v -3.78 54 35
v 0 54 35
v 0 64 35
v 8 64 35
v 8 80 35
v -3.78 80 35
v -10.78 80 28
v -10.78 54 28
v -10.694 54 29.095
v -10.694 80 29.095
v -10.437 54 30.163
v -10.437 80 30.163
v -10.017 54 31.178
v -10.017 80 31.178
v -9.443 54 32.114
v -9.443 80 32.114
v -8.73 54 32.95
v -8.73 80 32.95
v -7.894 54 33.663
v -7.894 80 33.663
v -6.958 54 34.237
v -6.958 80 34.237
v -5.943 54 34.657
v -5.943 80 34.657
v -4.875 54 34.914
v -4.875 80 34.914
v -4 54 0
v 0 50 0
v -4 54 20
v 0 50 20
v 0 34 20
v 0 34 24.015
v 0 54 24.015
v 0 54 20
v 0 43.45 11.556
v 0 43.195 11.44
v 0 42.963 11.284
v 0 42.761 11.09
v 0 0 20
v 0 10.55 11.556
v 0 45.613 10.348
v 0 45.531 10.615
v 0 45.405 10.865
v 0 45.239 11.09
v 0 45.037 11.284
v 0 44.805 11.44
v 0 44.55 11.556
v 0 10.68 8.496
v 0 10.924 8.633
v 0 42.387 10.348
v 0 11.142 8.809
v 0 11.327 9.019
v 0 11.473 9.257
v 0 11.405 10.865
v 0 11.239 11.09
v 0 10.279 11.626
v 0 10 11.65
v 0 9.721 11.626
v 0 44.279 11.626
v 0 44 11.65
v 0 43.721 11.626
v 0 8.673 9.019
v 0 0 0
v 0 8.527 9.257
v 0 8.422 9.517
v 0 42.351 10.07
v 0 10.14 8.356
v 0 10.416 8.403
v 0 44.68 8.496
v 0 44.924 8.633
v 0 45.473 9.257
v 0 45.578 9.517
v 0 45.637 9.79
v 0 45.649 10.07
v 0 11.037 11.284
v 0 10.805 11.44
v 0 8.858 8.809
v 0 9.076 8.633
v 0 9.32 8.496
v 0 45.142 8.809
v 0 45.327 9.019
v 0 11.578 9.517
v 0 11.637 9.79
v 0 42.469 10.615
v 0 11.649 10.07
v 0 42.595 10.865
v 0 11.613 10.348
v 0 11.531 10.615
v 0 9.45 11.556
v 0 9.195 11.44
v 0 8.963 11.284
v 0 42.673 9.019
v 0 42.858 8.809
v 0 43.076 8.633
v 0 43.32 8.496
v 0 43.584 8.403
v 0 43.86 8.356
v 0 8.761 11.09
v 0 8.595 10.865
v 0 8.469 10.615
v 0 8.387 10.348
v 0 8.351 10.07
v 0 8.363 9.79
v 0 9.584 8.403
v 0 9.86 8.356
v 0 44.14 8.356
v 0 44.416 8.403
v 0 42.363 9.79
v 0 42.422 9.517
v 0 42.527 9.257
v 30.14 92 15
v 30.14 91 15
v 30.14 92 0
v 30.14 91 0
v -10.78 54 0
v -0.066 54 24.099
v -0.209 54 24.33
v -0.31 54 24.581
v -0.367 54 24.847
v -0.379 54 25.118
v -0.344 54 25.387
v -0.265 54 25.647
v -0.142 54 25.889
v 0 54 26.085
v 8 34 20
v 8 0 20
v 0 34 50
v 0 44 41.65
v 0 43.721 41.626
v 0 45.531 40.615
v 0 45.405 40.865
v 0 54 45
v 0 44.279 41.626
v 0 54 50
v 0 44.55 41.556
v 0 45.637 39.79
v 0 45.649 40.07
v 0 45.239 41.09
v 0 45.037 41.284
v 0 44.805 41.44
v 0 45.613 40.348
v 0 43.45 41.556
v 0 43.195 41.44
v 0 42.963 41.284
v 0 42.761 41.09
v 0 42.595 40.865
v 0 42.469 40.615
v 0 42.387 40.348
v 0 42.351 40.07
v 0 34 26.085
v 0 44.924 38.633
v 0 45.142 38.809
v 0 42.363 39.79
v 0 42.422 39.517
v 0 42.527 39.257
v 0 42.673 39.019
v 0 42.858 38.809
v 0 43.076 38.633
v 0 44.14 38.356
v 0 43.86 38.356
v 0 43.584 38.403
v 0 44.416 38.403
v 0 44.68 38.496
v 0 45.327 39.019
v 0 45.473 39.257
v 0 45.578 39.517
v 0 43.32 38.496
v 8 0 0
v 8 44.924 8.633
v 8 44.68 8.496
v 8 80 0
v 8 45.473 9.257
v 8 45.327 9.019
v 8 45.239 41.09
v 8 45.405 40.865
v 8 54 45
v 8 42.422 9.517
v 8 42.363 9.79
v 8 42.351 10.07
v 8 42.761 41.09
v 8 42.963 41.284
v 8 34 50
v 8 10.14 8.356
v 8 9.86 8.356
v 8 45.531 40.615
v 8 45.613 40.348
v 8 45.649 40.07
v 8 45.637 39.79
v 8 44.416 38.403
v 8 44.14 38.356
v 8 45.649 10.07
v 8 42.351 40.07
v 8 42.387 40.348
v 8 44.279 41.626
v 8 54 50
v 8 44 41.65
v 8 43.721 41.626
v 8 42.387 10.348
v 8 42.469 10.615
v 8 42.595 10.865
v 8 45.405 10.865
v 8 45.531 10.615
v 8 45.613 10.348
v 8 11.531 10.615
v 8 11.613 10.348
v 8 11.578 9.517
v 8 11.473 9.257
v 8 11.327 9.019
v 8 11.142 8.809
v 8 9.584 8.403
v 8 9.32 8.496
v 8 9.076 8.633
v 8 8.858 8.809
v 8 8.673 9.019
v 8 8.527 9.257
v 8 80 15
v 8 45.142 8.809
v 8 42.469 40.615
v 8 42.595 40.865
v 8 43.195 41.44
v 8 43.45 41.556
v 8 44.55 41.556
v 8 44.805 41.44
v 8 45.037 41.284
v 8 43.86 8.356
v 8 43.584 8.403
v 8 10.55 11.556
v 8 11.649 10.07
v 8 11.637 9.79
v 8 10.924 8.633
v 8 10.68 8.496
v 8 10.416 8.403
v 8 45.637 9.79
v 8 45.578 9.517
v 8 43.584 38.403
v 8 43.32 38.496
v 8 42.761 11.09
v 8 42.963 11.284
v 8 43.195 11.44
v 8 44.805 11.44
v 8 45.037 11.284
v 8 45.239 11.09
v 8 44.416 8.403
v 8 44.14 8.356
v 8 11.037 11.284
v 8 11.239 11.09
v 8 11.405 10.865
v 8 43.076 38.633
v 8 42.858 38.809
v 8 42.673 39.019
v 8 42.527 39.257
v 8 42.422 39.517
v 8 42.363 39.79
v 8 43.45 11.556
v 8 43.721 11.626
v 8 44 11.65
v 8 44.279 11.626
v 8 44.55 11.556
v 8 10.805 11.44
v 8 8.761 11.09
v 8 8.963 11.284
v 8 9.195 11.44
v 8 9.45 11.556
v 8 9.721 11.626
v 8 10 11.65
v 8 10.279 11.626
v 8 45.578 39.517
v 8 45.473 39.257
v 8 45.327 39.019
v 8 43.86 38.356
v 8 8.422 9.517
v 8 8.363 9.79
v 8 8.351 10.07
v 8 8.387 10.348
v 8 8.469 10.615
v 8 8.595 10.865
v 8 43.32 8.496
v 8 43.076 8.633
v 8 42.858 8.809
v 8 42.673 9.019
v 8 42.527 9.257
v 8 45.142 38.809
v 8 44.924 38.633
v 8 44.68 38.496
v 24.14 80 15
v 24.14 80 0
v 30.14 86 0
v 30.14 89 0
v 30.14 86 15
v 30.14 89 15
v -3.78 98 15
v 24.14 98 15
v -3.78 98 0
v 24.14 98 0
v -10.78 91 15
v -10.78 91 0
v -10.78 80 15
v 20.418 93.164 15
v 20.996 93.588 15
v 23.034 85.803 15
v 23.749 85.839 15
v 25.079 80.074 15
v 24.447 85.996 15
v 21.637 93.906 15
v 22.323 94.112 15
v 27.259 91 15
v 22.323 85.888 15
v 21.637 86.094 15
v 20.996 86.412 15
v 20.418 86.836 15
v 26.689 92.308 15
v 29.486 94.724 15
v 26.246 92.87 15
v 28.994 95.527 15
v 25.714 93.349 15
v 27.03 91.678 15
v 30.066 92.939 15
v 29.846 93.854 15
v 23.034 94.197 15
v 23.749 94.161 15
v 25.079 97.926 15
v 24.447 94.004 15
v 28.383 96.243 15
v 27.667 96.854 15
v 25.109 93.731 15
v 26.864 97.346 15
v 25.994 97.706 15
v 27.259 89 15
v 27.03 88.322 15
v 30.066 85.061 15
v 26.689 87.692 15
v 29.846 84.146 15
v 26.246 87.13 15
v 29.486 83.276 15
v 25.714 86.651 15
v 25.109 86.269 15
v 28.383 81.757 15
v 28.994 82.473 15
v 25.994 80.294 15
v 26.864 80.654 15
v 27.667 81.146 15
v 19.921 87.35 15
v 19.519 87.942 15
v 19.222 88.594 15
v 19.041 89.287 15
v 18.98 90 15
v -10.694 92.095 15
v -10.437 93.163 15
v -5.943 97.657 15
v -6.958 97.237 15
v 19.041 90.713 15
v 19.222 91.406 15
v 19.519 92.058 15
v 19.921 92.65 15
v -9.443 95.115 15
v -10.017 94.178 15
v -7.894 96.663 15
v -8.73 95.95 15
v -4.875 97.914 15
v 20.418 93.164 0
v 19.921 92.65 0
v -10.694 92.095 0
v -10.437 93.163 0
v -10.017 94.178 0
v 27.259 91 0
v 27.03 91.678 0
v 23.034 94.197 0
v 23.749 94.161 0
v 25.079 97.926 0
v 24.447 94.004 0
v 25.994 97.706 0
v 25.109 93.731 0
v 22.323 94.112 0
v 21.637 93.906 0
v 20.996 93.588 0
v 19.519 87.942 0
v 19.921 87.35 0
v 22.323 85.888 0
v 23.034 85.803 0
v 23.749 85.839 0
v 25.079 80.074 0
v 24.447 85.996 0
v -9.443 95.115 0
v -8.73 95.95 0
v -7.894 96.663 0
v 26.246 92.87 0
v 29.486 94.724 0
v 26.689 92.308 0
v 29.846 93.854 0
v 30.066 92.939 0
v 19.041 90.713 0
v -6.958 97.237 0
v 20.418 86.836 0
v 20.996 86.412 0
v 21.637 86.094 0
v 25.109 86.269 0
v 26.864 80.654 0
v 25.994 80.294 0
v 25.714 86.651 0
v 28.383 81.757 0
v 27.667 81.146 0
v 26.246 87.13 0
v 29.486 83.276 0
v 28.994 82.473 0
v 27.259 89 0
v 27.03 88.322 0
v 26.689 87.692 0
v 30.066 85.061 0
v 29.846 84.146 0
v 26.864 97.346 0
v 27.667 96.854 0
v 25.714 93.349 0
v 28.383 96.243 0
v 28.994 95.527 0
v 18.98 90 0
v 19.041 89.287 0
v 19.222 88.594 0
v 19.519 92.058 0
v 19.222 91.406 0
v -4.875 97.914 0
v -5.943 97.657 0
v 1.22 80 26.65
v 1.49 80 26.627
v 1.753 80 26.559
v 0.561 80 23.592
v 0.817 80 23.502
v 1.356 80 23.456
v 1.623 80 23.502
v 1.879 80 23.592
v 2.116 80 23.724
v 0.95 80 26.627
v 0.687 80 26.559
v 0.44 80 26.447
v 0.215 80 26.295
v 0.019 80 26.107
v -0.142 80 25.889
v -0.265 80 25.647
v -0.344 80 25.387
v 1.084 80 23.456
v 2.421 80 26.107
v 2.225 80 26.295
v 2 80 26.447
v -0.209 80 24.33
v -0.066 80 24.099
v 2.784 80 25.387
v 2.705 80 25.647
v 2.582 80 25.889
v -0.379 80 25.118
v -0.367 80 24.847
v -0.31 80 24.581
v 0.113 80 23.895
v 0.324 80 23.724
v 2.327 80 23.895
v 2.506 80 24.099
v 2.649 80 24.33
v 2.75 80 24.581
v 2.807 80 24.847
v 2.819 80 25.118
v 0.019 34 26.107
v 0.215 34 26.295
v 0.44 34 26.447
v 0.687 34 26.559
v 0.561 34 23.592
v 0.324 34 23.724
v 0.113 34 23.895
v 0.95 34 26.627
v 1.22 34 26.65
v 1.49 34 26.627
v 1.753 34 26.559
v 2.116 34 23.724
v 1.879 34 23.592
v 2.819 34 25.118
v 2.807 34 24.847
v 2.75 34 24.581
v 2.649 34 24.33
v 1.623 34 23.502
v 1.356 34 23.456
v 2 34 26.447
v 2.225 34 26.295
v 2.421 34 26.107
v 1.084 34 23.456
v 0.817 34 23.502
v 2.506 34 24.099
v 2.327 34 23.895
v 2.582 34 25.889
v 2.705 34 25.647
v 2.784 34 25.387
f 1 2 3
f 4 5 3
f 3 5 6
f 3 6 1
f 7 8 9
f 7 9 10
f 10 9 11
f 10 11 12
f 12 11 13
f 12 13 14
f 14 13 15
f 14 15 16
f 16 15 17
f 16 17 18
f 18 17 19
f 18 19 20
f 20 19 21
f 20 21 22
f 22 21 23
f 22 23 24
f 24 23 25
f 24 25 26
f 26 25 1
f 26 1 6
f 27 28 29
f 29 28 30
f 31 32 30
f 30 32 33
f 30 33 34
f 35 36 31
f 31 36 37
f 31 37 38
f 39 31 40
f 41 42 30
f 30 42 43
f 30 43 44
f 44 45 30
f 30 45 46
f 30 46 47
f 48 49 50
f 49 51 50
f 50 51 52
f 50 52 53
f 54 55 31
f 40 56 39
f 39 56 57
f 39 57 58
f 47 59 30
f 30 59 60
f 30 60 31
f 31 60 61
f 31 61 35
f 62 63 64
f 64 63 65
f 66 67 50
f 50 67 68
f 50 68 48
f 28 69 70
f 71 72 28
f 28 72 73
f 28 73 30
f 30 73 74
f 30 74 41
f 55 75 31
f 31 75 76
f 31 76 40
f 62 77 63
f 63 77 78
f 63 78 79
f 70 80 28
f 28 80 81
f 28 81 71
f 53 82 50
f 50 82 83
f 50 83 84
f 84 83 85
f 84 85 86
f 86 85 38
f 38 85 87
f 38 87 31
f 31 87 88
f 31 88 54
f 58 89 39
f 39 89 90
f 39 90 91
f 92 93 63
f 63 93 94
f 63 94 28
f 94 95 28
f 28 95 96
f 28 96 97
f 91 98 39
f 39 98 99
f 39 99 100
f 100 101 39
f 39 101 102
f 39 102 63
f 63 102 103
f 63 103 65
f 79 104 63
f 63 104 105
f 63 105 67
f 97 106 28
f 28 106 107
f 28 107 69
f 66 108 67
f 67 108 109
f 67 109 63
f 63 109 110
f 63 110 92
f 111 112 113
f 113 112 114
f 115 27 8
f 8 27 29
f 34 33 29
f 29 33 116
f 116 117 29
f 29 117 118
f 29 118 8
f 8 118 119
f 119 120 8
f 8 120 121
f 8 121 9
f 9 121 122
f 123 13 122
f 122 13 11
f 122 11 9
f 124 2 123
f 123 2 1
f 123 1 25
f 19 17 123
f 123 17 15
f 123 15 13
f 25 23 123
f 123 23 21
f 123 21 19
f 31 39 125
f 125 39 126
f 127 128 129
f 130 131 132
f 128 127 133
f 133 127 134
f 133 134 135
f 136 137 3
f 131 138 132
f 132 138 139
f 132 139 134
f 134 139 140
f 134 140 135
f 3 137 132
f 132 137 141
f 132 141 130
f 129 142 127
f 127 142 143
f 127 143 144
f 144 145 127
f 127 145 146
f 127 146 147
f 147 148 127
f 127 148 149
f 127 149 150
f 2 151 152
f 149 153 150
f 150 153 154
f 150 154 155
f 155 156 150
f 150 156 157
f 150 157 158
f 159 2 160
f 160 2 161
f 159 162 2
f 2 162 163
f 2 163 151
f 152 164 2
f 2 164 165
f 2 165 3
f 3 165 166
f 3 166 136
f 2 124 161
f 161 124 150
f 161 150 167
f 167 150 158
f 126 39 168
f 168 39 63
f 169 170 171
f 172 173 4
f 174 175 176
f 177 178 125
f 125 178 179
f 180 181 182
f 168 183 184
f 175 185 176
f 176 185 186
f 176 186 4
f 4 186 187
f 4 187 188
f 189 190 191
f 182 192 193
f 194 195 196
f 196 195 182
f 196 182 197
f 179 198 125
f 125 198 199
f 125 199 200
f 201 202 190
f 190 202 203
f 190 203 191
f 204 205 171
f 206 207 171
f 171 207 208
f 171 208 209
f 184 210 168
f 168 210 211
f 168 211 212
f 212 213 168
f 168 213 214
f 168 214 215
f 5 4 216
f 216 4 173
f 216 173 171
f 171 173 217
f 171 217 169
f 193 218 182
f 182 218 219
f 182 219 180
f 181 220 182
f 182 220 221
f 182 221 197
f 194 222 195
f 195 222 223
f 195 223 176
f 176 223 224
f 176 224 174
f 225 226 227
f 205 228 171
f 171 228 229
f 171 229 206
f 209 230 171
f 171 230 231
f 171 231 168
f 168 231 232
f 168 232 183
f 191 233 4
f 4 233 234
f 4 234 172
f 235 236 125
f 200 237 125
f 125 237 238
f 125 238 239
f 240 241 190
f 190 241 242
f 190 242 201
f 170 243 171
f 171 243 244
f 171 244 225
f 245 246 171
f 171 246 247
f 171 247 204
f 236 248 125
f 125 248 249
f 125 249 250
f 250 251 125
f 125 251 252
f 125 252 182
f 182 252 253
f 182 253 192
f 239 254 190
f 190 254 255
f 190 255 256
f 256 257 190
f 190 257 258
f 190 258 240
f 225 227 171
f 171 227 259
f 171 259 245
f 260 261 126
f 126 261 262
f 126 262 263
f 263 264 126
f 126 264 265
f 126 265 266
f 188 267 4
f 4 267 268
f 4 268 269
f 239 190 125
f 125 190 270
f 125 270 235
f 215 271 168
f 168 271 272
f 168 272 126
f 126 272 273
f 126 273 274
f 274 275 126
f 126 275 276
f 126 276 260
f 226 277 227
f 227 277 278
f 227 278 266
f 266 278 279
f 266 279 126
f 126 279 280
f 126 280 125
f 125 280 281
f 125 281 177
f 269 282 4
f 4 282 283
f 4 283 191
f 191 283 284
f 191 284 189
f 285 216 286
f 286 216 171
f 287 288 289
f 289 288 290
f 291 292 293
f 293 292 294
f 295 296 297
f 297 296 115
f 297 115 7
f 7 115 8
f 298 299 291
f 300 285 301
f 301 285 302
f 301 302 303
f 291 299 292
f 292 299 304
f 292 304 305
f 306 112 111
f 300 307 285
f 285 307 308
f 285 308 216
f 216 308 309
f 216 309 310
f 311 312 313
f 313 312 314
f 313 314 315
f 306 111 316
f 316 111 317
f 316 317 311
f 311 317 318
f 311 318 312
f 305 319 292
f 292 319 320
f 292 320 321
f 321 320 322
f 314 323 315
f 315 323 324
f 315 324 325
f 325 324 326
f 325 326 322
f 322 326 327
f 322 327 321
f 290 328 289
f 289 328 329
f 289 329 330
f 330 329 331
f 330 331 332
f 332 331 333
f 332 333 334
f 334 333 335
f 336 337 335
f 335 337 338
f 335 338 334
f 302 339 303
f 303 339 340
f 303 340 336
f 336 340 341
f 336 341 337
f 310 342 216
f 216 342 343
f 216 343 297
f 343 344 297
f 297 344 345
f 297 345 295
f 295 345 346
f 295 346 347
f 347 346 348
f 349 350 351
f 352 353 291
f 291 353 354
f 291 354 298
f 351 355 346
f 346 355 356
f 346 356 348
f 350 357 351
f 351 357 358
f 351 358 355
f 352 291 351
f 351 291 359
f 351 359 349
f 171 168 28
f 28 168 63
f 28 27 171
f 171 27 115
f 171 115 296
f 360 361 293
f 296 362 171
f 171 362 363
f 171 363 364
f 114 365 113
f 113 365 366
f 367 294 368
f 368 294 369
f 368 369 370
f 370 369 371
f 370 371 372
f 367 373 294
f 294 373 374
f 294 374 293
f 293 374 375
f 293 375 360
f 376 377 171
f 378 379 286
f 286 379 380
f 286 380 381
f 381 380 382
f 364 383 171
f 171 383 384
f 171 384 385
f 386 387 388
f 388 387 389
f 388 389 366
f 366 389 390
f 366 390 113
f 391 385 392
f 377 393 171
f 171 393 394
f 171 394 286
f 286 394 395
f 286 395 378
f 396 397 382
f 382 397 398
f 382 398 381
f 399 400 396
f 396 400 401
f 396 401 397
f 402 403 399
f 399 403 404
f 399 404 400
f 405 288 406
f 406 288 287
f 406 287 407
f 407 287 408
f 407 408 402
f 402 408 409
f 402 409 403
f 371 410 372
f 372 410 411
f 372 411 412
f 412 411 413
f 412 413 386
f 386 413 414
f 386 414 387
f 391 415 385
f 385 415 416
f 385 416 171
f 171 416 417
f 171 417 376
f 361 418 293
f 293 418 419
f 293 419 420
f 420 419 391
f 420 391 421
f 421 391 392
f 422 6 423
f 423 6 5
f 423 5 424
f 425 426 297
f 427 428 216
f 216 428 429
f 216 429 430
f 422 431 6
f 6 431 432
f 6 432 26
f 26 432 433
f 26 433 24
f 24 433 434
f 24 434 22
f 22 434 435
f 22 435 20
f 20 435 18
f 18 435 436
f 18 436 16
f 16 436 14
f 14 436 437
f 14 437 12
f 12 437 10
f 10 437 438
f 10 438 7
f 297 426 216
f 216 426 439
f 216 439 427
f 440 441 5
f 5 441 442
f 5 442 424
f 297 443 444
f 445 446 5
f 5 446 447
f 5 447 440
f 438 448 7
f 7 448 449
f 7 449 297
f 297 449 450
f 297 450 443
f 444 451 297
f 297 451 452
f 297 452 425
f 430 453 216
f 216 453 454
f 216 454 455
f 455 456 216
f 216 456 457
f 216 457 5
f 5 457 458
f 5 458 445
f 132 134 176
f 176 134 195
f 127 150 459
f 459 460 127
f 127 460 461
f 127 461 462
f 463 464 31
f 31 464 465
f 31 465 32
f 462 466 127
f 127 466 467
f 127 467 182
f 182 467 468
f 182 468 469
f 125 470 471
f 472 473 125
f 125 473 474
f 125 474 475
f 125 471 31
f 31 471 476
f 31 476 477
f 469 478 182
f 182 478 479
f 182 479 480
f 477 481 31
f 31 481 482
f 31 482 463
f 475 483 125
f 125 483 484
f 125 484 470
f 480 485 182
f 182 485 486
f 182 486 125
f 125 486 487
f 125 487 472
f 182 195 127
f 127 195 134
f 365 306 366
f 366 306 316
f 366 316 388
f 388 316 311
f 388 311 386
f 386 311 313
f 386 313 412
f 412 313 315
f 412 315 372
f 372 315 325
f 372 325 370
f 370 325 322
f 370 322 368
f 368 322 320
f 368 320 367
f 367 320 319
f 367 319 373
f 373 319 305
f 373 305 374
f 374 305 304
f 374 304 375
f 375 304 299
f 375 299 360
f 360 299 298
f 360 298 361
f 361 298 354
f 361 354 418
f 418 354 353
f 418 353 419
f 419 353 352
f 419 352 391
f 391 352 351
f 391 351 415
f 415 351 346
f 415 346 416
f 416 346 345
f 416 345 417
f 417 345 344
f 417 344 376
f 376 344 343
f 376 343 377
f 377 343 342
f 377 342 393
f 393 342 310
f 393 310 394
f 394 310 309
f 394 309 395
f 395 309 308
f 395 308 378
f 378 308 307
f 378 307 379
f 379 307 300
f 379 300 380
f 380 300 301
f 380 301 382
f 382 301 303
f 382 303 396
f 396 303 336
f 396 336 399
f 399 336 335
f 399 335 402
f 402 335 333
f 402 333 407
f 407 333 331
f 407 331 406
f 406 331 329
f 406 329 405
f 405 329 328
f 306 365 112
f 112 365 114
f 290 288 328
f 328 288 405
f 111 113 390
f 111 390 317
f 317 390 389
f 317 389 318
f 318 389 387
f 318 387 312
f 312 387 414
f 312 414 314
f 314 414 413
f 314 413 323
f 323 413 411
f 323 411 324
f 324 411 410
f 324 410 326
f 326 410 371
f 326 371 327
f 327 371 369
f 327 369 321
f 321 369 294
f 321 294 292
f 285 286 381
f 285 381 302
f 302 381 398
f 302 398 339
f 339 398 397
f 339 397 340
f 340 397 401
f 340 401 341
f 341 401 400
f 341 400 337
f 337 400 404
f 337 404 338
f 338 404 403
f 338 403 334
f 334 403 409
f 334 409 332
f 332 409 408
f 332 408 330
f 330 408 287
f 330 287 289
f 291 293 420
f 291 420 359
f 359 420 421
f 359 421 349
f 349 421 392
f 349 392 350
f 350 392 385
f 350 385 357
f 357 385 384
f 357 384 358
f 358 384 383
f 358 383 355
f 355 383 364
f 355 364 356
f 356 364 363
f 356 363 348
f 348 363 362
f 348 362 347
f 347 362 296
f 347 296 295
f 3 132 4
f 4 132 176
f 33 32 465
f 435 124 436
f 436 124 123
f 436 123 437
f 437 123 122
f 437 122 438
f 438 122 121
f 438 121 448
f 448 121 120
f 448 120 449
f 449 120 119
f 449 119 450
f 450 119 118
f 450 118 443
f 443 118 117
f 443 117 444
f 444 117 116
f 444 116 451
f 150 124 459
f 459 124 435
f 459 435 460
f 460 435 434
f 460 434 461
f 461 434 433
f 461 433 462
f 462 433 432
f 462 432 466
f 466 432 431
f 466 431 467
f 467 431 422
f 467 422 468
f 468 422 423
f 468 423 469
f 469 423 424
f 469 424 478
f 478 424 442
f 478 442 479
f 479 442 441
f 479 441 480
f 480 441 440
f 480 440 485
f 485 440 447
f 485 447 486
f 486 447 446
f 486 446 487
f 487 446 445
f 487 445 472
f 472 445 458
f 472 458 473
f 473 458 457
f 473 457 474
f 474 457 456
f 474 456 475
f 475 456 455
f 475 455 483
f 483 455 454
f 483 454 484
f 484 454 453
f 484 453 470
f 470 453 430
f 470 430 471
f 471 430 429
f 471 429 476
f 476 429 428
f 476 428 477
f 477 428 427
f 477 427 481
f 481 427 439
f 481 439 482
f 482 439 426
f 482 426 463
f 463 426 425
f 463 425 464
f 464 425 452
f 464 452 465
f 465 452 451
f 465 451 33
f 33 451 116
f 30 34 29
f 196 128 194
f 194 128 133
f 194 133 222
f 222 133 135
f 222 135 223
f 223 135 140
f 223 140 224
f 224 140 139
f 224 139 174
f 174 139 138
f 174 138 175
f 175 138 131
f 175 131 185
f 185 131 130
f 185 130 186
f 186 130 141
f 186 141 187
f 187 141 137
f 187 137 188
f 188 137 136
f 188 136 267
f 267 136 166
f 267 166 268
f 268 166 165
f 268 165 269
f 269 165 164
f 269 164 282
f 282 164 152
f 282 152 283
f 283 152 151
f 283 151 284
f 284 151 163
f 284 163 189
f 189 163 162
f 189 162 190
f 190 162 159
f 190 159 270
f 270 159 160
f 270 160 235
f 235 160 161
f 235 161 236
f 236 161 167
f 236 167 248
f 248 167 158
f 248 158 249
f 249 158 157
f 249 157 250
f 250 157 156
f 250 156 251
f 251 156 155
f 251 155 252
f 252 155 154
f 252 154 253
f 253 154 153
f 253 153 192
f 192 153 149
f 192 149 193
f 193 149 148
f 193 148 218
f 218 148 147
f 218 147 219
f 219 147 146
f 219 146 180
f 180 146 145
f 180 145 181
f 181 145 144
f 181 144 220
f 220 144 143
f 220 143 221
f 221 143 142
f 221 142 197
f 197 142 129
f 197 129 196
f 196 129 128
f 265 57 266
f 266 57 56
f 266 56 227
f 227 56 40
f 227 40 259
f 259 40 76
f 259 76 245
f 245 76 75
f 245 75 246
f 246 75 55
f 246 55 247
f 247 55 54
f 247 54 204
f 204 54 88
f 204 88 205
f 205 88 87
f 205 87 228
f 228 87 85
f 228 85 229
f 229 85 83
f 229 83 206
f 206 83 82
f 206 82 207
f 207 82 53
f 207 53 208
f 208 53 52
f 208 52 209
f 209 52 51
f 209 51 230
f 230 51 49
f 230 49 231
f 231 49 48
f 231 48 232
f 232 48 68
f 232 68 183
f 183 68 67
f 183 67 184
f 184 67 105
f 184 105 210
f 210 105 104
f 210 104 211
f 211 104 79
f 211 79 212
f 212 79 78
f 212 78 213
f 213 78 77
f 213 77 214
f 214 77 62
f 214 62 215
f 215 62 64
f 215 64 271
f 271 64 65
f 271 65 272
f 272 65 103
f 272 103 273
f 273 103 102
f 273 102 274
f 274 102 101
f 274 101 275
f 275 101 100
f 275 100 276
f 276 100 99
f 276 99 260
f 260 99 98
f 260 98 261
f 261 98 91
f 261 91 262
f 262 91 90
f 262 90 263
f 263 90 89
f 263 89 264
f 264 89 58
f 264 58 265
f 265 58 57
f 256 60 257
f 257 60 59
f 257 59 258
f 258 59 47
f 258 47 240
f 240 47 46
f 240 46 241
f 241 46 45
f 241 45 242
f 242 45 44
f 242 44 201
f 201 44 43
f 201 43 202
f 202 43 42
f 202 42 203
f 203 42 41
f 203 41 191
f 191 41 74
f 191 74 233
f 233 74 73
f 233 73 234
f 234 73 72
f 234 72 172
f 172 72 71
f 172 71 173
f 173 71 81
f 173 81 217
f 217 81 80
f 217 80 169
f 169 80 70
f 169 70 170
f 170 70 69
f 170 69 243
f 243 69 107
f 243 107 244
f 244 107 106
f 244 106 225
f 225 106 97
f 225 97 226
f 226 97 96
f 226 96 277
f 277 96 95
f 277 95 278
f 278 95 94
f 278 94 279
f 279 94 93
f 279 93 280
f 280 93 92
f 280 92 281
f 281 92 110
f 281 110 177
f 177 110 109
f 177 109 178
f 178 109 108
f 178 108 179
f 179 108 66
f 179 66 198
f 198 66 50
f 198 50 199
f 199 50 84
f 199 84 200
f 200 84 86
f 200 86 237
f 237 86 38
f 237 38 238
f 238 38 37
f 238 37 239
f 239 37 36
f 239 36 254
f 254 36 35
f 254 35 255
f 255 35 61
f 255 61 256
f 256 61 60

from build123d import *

# Parameters (mm, degrees)
EXTRUDE_1_DEPTH     = 15
SKETCH_2_W          = 18.78
SKETCH_2_H          = 26
EXTRUDE_2_DEPTH     = 20
SKETCH_3_W          = 8
SKETCH_3_H          = 54
EXTRUDE_3_DEPTH     = 5
SKETCH_4_W          = 8
SKETCH_4_H          = 20
EXTRUDE_4_DEPTH     = 30
CUT_EXTRUDE_2_DEPTH = 30
FILLET_1_R          = 6
FILLET_2_R          = 6
FILLET_3_R          = 7
FILLET_4_R          = 7
CHAMFER_1_SIZE      = 10
CHAMFER_2_SIZE      = 4
SKETCH_6_R          = 1.6
CUT_EXTRUDE_3_DEPTH = 179
SKETCH_9_W          = 20.537192292
SKETCH_9_H          = 20
CUT_EXTRUDE_4_DEPTH = 179
SKETCH_10_R         = 1.65
CUT_EXTRUDE_5_DEPTH = 179


with BuildPart() as part:
    # 草图1 → 凸台-拉伸1 (new body)
    with BuildSketch(Plane.XY):
        Polygon((0, 0), (8, 0), (8, 80), (30.14, 80), (30.14, 98), (-10.78, 98), (-10.78, 54), (0, 54), align=None)
    extrude(amount=EXTRUDE_1_DEPTH)

    # 草图2 → 凸台-拉伸2 (add)
    with BuildSketch(Plane.XY.offset(15)):
        with Locations((-1.39, 67)):
            Rectangle(SKETCH_2_W, SKETCH_2_H)
    extrude(amount=EXTRUDE_2_DEPTH)

    # 草图3 → 凸台-拉伸3 (add)
    with BuildSketch(Plane.XY.offset(15)):
        with Locations((4, 27)):
            Rectangle(SKETCH_3_W, SKETCH_3_H)
    extrude(amount=EXTRUDE_3_DEPTH)

    # 草图4 → 凸台-拉伸4 (add)
    with BuildSketch(Plane.XY.offset(20)):
        with Locations((4, 44)):
            Rectangle(SKETCH_4_W, SKETCH_4_H)
    extrude(amount=EXTRUDE_4_DEPTH)

    # 草图5 → 切除-拉伸2 (cut)
    with BuildSketch(Plane.XY.offset(15)):
        with BuildLine():
            Line((30.14, 90), (30.14, 91))
            Line((30.14, 91), (27.259215611, 91))
            ThreePointArc((27.259215611, 91), (18.98, 90), (27.259215611, 89))
            Line((27.259215611, 89), (30.14, 89))
            Line((30.14, 89), (30.14, 90))
        make_face()
    extrude(amount=-CUT_EXTRUDE_2_DEPTH, mode=Mode.SUBTRACT)

    # 圆角1
    fillet_1_edges = [part.edges().sort_by_distance(p)[0] for p in [
        (30.14, 98, 7.5),
    ]]
    fillet(fillet_1_edges, radius=FILLET_1_R)

    # 圆角2
    fillet_2_edges = [part.edges().sort_by_distance(p)[0] for p in [
        (30.14, 80, 7.5),
    ]]
    fillet(fillet_2_edges, radius=FILLET_2_R)

    # 圆角3
    fillet_3_edges = [part.edges().sort_by_distance(p)[0] for p in [
        (-10.78, 98, 7.5),
    ]]
    fillet(fillet_3_edges, radius=FILLET_3_R)

    # 圆角4
    fillet_4_edges = [part.edges().sort_by_distance(p)[0] for p in [
        (-10.78, 67, 35),
    ]]
    fillet(fillet_4_edges, radius=FILLET_4_R)

    # 倒角1
    chamfer_1_edges = [part.edges().sort_by_distance(p)[0] for p in [
        (4, 54, 35),
    ]]
    chamfer(chamfer_1_edges, length=CHAMFER_1_SIZE)

    # 倒角2
    chamfer_2_edges = [part.edges().sort_by_distance(p)[0] for p in [
        (0, 54, 17.5),
    ]]
    chamfer(chamfer_2_edges, length=CHAMFER_2_SIZE)

    # 草图6 → 切除-拉伸3 (cut)
    with BuildSketch(Plane(origin=(0, 80, 0), x_dir=(1, 0, 0), z_dir=(0, 1, 0))):
        with Locations((1.22, -25.05)):
            Circle(SKETCH_6_R)
    extrude(amount=-CUT_EXTRUDE_3_DEPTH, mode=Mode.SUBTRACT)

    # 草图9 → 切除-拉伸4 (cut)
    with BuildSketch(Plane.ZY):
        with Locations((30.268596146, 44)):
            Rectangle(SKETCH_9_W, SKETCH_9_H)
    extrude(amount=CUT_EXTRUDE_4_DEPTH, mode=Mode.SUBTRACT)

    # 草图10 → 切除-拉伸5 (cut)
    with BuildSketch(Plane.ZY):
        with Locations((40, 44)):
            Circle(SKETCH_10_R)
        with Locations((10, 10)):
            Circle(SKETCH_10_R)
        with Locations((10, 44)):
            Circle(SKETCH_10_R)
    extrude(amount=-CUT_EXTRUDE_5_DEPTH, mode=Mode.SUBTRACT)


solid = part.part
